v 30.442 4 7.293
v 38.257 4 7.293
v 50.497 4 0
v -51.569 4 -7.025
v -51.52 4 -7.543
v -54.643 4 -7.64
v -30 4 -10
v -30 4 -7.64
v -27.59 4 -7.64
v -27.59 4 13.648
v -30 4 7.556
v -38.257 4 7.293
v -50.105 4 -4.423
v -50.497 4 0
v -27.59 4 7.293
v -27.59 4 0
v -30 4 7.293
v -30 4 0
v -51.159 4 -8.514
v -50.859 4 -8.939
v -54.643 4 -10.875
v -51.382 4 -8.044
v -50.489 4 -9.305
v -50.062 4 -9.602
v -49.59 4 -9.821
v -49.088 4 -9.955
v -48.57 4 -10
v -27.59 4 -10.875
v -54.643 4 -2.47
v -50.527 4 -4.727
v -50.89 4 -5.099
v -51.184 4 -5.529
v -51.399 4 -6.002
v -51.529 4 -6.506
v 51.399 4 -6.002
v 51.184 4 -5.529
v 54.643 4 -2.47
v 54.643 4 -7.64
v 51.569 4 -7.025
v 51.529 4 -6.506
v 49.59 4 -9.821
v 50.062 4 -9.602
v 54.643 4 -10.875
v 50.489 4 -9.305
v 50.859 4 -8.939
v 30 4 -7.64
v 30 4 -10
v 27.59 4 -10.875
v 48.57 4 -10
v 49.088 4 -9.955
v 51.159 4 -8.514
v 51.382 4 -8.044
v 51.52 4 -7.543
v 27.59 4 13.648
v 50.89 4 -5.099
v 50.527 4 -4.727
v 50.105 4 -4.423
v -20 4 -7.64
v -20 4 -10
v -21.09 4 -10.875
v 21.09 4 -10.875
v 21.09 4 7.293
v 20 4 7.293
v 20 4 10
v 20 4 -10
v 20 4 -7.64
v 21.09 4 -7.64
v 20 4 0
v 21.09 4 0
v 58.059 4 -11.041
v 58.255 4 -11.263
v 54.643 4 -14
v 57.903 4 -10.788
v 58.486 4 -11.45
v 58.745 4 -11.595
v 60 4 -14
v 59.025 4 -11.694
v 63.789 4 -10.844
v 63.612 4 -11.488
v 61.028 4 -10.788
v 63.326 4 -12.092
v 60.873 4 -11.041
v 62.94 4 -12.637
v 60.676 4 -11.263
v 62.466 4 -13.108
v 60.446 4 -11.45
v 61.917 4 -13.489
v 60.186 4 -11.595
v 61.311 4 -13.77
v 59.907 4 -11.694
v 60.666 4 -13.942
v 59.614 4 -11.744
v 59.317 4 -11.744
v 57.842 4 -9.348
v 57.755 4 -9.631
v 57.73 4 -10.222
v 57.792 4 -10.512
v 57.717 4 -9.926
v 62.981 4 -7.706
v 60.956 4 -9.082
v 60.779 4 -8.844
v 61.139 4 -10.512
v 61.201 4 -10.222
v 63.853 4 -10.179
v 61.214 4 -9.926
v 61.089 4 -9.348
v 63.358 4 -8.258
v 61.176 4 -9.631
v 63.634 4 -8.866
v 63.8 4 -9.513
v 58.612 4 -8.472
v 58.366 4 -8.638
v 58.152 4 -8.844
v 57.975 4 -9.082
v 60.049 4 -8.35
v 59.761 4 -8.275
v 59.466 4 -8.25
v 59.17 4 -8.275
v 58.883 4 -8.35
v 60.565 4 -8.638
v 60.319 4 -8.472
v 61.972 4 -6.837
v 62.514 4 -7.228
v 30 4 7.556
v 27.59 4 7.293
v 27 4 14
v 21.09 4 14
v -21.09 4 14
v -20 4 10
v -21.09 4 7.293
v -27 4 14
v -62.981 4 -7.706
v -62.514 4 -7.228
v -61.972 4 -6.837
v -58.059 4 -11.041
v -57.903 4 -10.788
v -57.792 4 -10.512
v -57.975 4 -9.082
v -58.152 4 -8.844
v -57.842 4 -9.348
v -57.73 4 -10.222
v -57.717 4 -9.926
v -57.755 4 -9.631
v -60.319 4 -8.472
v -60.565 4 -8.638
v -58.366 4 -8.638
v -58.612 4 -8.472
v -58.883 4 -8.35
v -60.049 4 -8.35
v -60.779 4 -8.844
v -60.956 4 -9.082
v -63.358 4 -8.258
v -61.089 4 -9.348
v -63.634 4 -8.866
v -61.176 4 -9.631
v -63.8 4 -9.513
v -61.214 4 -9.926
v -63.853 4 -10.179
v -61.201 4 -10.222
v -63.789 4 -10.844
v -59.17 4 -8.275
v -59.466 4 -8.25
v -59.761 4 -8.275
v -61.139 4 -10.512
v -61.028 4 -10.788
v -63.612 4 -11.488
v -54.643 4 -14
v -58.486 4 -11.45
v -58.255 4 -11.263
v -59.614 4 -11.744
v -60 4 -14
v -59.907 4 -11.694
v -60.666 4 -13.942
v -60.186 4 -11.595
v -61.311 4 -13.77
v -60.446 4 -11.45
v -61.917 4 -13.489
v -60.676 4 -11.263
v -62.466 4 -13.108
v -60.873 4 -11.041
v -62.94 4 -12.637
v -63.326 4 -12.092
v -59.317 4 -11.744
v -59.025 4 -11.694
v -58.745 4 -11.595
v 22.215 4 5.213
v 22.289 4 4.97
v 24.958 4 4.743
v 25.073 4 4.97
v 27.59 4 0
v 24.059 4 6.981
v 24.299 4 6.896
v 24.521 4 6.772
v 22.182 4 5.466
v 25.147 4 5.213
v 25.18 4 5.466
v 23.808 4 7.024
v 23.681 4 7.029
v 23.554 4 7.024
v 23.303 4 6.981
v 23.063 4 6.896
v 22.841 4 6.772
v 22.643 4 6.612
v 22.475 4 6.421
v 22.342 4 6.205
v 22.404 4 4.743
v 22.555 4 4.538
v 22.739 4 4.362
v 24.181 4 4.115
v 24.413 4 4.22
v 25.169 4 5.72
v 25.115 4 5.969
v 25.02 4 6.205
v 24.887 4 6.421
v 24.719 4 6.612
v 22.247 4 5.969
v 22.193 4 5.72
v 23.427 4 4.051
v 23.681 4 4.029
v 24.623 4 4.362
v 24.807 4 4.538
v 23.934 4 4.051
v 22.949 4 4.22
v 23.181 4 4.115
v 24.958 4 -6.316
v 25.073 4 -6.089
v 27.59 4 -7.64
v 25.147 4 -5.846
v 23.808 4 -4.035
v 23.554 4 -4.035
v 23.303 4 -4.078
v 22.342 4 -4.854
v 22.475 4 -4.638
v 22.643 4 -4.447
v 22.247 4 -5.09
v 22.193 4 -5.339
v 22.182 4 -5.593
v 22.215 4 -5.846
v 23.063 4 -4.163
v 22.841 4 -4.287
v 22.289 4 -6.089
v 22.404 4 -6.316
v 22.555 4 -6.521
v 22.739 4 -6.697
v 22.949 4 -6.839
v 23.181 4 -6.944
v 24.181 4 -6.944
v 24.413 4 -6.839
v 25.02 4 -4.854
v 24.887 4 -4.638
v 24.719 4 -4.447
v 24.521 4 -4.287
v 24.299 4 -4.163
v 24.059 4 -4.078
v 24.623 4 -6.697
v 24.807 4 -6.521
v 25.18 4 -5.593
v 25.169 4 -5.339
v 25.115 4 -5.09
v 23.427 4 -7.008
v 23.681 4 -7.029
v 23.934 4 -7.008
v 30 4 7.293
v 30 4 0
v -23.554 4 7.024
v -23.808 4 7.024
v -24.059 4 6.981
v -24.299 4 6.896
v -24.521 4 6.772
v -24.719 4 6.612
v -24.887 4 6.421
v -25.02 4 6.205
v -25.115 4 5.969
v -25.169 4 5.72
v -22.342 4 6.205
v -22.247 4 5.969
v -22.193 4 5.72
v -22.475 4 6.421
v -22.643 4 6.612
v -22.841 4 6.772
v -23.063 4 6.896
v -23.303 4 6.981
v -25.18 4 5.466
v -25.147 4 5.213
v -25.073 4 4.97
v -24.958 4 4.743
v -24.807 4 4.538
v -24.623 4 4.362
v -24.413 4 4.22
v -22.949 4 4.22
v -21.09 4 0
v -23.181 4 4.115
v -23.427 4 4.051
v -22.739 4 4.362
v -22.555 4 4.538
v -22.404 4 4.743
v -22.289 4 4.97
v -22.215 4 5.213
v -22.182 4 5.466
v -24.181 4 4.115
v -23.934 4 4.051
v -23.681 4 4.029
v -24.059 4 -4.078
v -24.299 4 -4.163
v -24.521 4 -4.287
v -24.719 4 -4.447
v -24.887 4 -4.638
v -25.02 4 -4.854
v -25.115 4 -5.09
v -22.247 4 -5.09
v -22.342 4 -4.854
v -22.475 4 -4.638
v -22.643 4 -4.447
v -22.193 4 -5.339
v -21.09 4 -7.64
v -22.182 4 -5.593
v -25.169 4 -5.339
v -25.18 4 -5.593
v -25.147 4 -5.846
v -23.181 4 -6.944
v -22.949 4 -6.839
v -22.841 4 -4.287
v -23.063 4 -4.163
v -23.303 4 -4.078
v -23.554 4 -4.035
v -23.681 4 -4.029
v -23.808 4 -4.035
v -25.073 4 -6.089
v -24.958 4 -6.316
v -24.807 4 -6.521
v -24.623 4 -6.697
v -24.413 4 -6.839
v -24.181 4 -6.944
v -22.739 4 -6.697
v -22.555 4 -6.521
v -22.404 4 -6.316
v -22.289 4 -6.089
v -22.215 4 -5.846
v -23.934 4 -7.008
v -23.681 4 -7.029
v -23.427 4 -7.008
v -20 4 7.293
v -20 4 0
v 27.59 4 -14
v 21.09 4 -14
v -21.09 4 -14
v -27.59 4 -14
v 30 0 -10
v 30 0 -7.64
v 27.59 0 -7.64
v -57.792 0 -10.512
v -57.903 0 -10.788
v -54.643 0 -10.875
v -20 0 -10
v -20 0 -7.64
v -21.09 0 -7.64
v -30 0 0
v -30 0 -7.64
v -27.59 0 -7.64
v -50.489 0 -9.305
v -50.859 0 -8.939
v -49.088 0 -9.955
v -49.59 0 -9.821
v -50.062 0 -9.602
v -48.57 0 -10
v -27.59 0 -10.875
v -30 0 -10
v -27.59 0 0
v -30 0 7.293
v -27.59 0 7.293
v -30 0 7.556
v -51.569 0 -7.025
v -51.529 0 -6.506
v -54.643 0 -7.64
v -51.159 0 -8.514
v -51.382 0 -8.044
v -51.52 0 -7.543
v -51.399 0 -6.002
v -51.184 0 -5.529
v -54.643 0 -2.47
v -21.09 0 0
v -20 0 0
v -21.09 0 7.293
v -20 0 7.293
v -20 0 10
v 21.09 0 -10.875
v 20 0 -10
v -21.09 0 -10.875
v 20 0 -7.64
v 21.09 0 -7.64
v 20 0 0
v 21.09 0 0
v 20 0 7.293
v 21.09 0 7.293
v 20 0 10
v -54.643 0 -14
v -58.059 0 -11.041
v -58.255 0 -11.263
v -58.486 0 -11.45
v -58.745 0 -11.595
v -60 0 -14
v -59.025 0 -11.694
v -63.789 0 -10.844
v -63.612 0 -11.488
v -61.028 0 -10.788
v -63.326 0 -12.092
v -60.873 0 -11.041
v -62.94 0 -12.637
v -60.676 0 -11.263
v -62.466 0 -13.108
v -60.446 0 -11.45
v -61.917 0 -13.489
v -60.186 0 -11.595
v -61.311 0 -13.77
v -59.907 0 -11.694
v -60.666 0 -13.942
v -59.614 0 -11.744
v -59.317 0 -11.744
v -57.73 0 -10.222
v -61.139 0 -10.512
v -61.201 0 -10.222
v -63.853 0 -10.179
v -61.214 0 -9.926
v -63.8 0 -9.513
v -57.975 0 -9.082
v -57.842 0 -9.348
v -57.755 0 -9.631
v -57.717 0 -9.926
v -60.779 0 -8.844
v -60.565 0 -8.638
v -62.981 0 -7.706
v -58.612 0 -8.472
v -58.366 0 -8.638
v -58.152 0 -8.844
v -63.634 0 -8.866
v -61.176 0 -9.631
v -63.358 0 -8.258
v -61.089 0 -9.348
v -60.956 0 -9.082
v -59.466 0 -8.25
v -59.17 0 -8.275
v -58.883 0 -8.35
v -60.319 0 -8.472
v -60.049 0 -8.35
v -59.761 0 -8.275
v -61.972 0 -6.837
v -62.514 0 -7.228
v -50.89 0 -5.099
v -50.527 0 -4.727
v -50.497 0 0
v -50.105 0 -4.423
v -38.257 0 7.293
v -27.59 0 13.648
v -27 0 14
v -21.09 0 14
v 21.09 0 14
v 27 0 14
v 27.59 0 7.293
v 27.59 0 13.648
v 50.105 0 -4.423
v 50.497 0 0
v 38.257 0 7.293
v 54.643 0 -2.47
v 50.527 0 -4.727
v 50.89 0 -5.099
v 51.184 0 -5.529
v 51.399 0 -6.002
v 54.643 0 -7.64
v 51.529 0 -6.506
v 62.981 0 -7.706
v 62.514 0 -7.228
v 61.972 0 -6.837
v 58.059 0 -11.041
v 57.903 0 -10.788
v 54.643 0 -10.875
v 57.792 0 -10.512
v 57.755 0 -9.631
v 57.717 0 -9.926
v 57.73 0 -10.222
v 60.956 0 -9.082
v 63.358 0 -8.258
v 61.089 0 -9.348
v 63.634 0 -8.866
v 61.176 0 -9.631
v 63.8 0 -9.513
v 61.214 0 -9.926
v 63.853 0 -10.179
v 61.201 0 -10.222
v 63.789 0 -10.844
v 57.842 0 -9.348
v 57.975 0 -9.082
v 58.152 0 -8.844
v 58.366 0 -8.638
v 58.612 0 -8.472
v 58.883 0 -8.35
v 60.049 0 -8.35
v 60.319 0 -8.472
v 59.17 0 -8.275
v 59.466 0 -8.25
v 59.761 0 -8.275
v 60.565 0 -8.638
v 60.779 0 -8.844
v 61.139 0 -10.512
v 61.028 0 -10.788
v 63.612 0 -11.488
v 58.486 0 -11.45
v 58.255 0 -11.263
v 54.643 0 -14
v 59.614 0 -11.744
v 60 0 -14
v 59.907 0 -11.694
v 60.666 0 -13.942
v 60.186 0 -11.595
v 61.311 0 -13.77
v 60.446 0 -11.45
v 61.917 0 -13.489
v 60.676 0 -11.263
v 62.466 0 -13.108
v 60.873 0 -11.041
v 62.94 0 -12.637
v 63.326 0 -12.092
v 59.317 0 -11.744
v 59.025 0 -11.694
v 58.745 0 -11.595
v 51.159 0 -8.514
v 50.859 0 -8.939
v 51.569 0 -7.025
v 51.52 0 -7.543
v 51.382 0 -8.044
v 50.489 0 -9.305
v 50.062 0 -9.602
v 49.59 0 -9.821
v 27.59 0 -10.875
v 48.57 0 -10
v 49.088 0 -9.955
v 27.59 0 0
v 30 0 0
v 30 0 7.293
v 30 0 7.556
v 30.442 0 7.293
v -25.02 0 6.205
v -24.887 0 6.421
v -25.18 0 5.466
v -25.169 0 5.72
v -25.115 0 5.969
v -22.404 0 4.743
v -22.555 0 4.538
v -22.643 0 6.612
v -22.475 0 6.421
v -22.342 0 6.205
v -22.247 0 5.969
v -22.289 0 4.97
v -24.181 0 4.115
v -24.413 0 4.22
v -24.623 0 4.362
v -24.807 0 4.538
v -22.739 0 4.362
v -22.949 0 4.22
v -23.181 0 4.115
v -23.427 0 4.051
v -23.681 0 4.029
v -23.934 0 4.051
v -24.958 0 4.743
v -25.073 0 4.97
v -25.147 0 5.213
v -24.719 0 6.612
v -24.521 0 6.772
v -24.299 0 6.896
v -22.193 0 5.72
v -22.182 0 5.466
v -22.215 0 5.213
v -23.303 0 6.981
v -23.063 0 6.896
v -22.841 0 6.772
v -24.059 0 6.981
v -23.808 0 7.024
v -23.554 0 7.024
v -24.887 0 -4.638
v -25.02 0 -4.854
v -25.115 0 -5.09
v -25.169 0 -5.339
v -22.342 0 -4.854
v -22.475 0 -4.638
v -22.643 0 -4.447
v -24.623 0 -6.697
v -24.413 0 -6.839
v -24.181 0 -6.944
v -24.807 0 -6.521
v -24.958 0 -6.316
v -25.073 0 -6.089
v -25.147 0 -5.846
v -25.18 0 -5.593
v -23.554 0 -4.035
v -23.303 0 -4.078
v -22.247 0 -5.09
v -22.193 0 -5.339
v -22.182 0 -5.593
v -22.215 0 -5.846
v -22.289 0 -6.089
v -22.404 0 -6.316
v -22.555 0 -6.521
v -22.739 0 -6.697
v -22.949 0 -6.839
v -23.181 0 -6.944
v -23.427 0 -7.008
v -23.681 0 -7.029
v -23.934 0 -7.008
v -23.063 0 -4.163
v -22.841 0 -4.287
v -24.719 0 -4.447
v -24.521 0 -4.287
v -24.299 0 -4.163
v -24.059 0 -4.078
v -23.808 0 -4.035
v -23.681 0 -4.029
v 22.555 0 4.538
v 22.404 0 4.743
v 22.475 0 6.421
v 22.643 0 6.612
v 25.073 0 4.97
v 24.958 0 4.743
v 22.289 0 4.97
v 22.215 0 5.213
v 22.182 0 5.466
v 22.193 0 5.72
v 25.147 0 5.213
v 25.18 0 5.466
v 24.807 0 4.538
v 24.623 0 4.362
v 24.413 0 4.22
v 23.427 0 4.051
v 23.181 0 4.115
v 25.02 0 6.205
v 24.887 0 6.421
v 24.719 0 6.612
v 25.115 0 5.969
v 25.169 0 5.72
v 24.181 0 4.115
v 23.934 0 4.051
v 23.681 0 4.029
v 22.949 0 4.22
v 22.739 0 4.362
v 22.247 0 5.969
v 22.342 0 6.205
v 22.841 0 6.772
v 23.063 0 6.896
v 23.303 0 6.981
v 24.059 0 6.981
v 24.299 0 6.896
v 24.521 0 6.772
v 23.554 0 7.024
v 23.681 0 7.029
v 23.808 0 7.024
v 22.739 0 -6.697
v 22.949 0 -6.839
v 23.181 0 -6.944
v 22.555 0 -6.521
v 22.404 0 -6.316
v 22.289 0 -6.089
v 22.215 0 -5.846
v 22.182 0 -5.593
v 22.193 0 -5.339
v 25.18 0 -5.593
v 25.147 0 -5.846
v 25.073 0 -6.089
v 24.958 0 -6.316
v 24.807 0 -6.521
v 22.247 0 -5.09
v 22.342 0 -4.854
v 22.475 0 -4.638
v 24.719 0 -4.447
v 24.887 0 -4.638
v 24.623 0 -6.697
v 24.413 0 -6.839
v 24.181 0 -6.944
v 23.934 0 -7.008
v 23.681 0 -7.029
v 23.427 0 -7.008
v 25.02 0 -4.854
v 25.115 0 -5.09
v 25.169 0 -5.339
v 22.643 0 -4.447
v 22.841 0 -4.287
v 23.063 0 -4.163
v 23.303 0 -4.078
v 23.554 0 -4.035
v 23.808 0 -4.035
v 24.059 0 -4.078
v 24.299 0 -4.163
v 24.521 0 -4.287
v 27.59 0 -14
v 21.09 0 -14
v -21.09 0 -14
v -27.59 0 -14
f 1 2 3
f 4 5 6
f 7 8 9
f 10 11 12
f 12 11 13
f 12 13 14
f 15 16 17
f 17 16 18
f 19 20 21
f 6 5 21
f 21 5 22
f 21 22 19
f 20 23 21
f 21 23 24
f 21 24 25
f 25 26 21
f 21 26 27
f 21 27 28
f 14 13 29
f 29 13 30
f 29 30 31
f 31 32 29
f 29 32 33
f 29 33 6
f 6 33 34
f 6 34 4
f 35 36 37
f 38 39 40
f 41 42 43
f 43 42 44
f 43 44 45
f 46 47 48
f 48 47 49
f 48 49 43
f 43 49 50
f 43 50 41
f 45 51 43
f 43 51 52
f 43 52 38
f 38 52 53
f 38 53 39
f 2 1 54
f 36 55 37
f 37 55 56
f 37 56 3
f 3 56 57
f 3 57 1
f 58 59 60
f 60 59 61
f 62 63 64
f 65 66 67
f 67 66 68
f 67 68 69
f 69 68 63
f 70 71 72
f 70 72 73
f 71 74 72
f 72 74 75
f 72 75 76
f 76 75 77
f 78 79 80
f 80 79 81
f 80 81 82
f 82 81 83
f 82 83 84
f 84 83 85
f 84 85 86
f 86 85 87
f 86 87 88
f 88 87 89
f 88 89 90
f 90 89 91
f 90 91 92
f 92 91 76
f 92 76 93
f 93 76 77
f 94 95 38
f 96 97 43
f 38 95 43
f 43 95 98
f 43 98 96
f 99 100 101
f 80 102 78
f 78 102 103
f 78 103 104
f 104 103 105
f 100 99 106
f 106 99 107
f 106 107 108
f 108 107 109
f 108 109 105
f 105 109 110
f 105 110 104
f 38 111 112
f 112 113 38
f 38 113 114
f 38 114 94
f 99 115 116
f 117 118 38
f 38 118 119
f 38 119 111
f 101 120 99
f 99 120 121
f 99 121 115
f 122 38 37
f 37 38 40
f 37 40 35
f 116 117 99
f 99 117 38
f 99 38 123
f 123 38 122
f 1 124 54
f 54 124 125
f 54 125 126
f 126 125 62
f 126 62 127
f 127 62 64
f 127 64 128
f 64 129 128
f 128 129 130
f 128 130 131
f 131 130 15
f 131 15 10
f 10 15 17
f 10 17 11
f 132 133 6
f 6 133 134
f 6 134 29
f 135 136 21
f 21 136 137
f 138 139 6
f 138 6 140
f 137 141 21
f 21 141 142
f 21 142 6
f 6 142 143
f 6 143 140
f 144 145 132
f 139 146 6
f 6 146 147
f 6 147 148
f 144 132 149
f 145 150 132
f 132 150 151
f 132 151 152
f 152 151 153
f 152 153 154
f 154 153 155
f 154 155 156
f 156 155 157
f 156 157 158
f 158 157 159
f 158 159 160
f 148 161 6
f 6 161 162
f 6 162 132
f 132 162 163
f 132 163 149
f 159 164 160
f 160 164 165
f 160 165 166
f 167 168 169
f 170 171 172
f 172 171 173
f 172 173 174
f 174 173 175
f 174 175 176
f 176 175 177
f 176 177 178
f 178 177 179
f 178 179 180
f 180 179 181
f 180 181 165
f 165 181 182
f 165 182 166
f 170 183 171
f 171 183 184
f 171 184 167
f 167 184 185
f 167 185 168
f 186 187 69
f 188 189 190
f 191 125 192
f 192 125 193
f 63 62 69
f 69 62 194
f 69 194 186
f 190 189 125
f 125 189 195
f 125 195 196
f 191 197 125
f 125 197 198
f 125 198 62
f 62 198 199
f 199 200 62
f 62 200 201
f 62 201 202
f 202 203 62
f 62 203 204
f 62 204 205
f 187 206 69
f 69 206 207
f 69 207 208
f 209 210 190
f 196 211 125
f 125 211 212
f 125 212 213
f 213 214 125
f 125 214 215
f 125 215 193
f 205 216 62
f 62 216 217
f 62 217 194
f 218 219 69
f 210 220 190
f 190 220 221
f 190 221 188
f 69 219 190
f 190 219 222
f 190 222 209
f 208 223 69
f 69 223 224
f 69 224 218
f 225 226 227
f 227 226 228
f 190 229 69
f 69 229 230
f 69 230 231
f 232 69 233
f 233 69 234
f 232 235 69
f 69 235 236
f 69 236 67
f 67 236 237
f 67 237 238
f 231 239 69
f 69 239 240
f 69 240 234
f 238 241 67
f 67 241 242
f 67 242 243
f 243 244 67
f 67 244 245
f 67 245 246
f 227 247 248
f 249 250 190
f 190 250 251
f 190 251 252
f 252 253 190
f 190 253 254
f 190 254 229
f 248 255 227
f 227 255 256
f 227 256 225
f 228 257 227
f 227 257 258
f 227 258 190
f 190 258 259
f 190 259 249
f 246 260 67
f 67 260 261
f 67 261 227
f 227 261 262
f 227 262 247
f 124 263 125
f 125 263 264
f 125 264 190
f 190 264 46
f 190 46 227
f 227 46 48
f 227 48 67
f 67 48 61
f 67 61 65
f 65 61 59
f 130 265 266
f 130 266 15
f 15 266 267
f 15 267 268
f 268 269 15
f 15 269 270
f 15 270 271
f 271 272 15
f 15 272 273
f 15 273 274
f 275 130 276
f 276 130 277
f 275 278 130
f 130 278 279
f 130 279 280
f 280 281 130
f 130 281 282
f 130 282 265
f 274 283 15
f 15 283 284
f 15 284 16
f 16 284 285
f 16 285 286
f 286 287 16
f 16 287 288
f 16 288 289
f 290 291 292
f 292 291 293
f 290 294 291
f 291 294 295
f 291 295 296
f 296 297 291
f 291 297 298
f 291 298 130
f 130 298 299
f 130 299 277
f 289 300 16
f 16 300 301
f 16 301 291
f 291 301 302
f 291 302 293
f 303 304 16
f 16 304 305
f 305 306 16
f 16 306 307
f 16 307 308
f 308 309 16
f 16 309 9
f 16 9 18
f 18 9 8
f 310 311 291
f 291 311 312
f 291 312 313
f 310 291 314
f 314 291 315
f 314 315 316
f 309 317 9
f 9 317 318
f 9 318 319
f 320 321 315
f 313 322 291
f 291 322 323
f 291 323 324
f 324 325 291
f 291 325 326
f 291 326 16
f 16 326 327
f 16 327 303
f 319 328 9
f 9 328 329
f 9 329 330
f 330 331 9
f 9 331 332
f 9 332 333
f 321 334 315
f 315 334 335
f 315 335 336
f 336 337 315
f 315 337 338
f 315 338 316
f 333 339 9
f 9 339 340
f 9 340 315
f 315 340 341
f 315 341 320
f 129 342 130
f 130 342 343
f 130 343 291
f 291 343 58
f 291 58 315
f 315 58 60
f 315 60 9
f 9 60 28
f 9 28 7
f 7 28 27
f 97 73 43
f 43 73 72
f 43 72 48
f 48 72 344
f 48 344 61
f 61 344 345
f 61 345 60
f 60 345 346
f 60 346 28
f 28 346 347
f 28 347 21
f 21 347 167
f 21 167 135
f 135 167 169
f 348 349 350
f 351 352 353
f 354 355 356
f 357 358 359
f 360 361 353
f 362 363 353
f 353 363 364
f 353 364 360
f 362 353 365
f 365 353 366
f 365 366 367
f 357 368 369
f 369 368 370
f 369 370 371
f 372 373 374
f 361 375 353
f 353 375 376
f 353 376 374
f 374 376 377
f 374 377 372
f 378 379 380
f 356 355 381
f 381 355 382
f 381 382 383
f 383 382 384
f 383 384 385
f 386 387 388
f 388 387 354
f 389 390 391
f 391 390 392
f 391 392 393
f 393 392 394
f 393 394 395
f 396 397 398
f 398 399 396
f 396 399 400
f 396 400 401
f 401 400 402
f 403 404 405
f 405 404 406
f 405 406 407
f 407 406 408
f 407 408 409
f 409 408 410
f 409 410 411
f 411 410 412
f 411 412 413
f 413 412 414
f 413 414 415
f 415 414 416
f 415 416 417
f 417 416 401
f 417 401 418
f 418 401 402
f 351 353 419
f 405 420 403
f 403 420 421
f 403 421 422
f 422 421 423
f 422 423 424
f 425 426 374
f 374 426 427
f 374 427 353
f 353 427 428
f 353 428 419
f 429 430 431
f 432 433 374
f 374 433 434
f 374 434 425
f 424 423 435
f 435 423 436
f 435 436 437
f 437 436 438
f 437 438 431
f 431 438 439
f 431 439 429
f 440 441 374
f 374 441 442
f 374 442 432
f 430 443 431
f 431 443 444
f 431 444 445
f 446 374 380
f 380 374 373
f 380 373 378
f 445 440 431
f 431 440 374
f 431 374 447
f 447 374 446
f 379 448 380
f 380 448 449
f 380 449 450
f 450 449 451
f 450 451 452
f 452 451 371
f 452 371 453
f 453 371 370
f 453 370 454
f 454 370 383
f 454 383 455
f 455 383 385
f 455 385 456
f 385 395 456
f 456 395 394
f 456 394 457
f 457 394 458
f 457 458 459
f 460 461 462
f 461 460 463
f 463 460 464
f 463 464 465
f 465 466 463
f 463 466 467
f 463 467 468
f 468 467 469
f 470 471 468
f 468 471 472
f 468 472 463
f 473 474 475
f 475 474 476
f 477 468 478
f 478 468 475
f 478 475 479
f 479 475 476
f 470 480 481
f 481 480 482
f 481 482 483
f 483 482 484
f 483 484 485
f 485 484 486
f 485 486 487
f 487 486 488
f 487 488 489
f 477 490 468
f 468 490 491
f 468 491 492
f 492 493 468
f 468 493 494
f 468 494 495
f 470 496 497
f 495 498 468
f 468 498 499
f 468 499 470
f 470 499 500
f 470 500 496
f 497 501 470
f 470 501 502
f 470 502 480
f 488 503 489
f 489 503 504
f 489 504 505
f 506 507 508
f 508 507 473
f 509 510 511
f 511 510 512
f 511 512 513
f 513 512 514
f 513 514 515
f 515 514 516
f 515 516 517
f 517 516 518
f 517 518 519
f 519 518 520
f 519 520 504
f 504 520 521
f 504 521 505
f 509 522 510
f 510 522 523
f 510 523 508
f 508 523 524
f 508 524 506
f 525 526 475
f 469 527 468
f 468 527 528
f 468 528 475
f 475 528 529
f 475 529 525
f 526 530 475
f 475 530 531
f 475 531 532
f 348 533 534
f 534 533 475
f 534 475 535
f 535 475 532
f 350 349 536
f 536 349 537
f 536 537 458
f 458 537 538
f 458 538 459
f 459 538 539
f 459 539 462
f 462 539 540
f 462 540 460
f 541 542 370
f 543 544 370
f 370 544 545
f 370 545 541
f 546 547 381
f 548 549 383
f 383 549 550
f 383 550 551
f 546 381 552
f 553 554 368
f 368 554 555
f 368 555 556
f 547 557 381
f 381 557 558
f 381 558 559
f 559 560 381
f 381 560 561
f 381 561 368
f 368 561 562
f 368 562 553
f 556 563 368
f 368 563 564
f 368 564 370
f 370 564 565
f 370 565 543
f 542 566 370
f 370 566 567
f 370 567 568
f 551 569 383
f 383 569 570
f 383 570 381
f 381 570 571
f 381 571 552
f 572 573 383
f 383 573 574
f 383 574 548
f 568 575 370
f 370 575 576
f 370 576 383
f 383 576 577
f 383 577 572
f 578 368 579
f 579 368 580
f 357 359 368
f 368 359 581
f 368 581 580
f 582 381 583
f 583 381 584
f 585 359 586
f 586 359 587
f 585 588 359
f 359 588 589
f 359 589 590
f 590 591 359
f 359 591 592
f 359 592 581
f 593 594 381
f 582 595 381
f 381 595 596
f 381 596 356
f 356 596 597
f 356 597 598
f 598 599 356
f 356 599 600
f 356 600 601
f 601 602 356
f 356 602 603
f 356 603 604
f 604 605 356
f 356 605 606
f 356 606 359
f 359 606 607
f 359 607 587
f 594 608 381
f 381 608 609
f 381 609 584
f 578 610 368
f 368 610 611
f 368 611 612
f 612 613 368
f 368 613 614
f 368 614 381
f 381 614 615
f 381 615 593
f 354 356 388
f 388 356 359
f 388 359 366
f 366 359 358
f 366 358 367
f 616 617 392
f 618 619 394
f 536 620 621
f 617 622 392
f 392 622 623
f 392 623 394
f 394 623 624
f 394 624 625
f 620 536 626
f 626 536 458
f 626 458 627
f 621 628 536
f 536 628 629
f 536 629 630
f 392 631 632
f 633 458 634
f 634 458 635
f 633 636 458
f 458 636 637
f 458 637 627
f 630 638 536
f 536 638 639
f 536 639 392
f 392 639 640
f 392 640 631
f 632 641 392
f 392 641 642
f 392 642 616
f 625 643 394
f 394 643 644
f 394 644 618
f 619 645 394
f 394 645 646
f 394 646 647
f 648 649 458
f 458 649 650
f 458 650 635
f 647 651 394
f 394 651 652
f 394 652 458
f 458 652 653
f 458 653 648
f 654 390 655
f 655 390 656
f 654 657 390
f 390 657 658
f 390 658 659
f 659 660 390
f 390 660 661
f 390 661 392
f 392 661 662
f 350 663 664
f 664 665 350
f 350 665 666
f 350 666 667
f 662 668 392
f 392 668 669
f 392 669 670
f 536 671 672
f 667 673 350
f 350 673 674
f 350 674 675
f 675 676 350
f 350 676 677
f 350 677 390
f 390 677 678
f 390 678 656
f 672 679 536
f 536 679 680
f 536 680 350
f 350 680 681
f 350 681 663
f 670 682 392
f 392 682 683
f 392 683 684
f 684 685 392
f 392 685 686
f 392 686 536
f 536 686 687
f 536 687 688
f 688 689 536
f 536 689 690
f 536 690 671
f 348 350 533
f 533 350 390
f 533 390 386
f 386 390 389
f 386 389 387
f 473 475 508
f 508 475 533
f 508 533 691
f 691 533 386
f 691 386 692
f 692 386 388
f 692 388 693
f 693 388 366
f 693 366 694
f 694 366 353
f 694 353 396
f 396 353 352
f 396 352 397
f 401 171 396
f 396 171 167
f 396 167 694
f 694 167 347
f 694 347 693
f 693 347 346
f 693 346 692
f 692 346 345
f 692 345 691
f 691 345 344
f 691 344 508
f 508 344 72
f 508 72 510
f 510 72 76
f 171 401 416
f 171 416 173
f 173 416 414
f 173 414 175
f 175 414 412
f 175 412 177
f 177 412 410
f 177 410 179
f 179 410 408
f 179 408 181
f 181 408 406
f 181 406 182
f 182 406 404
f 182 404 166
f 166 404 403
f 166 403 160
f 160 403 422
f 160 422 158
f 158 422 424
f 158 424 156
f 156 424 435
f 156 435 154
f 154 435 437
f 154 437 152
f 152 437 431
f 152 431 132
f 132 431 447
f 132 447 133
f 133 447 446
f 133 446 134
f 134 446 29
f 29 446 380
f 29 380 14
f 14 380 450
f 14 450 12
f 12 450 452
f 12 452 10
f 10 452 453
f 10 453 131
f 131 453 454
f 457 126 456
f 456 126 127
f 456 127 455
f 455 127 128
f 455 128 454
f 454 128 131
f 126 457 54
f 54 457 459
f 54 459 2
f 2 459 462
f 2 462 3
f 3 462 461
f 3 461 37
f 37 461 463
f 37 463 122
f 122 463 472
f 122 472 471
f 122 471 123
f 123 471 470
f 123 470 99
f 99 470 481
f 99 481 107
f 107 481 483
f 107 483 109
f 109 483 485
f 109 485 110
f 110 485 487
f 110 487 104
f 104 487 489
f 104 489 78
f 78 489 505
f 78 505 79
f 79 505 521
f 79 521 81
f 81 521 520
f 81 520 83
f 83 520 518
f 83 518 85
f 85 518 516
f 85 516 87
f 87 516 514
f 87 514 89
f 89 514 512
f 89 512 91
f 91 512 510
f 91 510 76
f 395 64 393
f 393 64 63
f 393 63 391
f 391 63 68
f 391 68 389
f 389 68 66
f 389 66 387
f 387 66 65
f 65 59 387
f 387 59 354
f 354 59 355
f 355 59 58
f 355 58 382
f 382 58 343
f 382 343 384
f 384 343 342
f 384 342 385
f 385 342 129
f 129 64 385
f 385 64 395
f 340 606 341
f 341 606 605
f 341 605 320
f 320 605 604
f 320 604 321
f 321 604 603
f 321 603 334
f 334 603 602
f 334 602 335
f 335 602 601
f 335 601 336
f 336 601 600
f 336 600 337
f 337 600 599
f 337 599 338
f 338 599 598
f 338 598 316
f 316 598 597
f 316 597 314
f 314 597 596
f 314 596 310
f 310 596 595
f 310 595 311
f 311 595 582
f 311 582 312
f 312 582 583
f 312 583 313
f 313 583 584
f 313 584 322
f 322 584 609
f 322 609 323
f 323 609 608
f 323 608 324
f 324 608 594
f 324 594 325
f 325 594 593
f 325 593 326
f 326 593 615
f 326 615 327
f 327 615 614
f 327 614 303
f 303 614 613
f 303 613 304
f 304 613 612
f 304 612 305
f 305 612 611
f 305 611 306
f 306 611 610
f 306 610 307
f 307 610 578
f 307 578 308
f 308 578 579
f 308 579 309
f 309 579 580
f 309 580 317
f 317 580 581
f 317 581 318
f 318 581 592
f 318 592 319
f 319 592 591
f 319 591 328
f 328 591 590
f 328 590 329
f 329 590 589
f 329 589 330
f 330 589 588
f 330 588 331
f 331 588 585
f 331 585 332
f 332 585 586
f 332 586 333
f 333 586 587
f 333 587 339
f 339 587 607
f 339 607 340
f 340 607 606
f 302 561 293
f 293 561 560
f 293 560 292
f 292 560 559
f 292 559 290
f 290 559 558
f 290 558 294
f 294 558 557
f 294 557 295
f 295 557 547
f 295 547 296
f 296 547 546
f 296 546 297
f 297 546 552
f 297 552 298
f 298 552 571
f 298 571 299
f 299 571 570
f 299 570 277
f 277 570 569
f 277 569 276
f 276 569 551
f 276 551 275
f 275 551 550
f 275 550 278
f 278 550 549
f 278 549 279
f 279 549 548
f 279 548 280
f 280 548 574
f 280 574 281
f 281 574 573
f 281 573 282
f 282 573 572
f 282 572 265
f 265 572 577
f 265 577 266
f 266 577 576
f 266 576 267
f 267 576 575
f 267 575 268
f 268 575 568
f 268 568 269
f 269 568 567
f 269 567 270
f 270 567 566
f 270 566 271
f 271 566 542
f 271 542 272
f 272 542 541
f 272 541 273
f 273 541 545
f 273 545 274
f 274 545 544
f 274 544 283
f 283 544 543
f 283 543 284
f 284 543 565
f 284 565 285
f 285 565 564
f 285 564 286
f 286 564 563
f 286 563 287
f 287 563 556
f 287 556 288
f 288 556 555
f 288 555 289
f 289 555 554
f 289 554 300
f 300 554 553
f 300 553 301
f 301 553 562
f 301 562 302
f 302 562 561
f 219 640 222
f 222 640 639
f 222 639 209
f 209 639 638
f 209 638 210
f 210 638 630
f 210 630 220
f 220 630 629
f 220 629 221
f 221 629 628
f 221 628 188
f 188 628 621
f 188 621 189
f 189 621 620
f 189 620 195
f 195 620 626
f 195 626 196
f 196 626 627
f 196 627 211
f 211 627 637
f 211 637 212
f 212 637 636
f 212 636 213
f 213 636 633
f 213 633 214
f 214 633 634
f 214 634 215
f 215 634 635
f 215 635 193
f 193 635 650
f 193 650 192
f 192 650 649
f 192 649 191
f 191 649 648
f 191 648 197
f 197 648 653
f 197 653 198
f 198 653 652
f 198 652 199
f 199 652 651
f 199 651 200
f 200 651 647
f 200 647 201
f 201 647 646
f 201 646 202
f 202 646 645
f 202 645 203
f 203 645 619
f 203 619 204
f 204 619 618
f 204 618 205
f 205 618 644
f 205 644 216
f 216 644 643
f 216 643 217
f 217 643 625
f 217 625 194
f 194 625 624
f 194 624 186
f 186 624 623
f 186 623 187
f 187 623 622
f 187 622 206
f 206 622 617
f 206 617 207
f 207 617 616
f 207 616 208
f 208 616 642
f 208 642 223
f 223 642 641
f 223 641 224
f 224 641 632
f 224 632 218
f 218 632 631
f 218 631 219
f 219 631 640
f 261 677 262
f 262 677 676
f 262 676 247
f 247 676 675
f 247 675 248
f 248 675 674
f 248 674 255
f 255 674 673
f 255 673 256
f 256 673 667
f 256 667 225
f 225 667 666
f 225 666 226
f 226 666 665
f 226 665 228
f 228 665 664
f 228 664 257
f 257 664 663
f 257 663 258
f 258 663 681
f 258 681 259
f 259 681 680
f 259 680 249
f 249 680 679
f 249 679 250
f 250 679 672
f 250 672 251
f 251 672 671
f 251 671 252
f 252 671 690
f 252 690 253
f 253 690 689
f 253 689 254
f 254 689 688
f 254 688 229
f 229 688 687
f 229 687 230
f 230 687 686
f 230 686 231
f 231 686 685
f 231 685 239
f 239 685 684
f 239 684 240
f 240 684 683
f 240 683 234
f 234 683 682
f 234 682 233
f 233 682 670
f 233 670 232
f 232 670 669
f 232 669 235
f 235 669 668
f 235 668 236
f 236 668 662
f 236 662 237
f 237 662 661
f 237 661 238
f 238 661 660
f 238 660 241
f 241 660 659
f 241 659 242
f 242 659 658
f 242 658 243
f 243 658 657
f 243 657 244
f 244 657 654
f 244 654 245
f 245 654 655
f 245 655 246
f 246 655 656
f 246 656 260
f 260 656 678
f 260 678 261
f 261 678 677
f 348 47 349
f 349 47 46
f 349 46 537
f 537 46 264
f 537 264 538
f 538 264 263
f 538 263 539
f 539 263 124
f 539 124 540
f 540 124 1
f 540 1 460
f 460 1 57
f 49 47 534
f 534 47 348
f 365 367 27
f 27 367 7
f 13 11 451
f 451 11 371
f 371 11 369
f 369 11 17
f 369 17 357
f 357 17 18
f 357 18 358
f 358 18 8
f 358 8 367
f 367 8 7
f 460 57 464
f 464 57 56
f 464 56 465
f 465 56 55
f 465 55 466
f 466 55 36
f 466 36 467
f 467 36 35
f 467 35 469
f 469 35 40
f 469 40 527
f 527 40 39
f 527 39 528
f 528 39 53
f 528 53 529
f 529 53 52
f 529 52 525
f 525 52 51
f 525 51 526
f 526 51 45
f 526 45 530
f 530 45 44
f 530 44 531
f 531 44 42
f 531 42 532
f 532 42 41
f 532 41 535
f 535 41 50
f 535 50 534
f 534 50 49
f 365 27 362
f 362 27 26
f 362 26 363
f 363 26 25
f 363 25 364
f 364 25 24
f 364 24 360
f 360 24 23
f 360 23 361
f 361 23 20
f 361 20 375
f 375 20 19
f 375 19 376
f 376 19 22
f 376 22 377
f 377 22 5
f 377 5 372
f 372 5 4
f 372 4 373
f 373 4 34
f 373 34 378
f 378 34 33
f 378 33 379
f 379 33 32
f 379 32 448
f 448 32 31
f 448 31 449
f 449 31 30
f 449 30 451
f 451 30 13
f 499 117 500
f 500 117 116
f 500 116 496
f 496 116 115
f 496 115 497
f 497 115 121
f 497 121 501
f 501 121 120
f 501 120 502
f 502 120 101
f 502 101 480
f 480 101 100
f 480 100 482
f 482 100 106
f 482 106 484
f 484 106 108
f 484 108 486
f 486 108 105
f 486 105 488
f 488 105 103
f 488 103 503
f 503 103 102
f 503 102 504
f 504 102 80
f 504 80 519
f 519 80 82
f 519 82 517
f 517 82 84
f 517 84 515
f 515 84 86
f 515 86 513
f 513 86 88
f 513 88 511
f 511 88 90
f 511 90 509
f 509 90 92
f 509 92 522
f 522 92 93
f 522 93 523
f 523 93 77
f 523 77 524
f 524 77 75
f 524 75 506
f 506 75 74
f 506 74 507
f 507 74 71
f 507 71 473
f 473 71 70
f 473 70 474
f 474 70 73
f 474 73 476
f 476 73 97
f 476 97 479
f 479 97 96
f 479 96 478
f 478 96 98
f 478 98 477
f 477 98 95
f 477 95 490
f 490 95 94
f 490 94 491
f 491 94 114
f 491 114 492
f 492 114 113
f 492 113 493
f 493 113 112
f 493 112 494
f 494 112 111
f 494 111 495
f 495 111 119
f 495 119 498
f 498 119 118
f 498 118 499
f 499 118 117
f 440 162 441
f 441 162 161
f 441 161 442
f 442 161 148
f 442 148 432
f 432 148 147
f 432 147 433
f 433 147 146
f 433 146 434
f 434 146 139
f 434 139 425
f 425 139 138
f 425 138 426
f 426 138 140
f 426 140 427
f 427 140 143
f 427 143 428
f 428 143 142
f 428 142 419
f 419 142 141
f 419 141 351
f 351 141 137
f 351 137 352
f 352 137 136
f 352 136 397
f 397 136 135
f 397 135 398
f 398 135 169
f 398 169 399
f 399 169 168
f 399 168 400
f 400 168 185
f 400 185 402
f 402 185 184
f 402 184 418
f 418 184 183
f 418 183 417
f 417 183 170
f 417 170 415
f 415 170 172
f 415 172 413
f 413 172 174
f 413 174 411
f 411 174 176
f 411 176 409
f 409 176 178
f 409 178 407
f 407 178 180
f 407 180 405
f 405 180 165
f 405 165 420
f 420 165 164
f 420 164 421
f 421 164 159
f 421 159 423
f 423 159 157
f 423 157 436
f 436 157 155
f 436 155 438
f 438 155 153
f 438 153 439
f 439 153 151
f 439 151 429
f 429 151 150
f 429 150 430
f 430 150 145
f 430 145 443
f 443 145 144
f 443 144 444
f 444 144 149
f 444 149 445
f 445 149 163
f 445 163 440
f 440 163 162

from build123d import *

# Parameters (mm, degrees)
SKETCH_1_R          = 1.5
SKETCH_1_W          = 40
SKETCH_1_H          = 20
EXTRUDE_1_DEPTH     = 4
FILLET_1_R          = 3
FILLET_2_R          = 3
SKETCH_2_R          = 1.75
CUT_EXTRUDE_1_DEPTH = 67.130086355


with BuildPart() as part:
    # 草图1 → 凸台-拉伸1 (new body)
    with BuildSketch(Plane(origin=(0, 0, 0), x_dir=(1, 0, 0), z_dir=(0, 1, 0))):
        with BuildLine():
            Line((-27, -14), (27, -14))
            Line((27, -14), (61.972111671, 6.837249964))
            ThreePointArc((61.972111671, 6.837249964), (63.714640377, 11.169883003), (60, 14))
            Line((60, 14), (27, 14))
            Line((27, 14), (-27, 14))
            Line((-27, 14), (-60, 14))
            ThreePointArc((-60, 14), (-63.714640377, 11.169883003), (-61.972111671, 6.837249964))
            Line((-61.972111671, 6.837249964), (-27, -14))
        make_face()
        with Locations(Location((-23.680960464, 5.529497849, 0), (0, 0, 270))):
            Circle(SKETCH_1_R, mode=Mode.SUBTRACT)
        with Locations(Location((-23.680960464, -5.529497849, 0), (0, 0, 90))):
            Circle(SKETCH_1_R, mode=Mode.SUBTRACT)
        with Locations(Location((23.680960464, -5.529497849, 0), (0, 0, 270))):
            Circle(SKETCH_1_R, mode=Mode.SUBTRACT)
        with Locations(Location((23.680960464, 5.529497849, 0), (0, 0, 90))):
            Circle(SKETCH_1_R, mode=Mode.SUBTRACT)
        Rectangle(SKETCH_1_W, SKETCH_1_H, mode=Mode.SUBTRACT)
        Polygon((30, 10), (59.465601315, 10), (30, -7.556334765), align=None, mode=Mode.SUBTRACT)
        Polygon((-59.465601315, 10), (-30, -7.556334765), (-30, 10), align=None, mode=Mode.SUBTRACT)
    extrude(amount=EXTRUDE_1_DEPTH)

    # 圆角1
    fillet_1_edges = [part.edges().sort_by_distance(p)[0] for p in [
        (59.465601315, 2, -10),
    ]]
    fillet(fillet_1_edges, radius=FILLET_1_R)

    # 圆角2
    fillet_2_edges = [part.edges().sort_by_distance(p)[0] for p in [
        (-59.465601315, 2, -10),
    ]]
    fillet(fillet_2_edges, radius=FILLET_2_R)

    # 草图2 → 切除-拉伸1 (cut, through all)
    with BuildSketch(Plane(origin=(0, 10, 0), x_dir=(1, 0, 0), z_dir=(0, 1, 0))):
        with Locations(Location((-59.465601315, 10, 0), (0, 0, 270))):
            Circle(SKETCH_2_R)
        with Locations(Location((59.465601315, 10, 0), (0, 0, 270))):
            Circle(SKETCH_2_R)
    extrude(amount=-CUT_EXTRUDE_1_DEPTH, mode=Mode.SUBTRACT)


solid = part.part
